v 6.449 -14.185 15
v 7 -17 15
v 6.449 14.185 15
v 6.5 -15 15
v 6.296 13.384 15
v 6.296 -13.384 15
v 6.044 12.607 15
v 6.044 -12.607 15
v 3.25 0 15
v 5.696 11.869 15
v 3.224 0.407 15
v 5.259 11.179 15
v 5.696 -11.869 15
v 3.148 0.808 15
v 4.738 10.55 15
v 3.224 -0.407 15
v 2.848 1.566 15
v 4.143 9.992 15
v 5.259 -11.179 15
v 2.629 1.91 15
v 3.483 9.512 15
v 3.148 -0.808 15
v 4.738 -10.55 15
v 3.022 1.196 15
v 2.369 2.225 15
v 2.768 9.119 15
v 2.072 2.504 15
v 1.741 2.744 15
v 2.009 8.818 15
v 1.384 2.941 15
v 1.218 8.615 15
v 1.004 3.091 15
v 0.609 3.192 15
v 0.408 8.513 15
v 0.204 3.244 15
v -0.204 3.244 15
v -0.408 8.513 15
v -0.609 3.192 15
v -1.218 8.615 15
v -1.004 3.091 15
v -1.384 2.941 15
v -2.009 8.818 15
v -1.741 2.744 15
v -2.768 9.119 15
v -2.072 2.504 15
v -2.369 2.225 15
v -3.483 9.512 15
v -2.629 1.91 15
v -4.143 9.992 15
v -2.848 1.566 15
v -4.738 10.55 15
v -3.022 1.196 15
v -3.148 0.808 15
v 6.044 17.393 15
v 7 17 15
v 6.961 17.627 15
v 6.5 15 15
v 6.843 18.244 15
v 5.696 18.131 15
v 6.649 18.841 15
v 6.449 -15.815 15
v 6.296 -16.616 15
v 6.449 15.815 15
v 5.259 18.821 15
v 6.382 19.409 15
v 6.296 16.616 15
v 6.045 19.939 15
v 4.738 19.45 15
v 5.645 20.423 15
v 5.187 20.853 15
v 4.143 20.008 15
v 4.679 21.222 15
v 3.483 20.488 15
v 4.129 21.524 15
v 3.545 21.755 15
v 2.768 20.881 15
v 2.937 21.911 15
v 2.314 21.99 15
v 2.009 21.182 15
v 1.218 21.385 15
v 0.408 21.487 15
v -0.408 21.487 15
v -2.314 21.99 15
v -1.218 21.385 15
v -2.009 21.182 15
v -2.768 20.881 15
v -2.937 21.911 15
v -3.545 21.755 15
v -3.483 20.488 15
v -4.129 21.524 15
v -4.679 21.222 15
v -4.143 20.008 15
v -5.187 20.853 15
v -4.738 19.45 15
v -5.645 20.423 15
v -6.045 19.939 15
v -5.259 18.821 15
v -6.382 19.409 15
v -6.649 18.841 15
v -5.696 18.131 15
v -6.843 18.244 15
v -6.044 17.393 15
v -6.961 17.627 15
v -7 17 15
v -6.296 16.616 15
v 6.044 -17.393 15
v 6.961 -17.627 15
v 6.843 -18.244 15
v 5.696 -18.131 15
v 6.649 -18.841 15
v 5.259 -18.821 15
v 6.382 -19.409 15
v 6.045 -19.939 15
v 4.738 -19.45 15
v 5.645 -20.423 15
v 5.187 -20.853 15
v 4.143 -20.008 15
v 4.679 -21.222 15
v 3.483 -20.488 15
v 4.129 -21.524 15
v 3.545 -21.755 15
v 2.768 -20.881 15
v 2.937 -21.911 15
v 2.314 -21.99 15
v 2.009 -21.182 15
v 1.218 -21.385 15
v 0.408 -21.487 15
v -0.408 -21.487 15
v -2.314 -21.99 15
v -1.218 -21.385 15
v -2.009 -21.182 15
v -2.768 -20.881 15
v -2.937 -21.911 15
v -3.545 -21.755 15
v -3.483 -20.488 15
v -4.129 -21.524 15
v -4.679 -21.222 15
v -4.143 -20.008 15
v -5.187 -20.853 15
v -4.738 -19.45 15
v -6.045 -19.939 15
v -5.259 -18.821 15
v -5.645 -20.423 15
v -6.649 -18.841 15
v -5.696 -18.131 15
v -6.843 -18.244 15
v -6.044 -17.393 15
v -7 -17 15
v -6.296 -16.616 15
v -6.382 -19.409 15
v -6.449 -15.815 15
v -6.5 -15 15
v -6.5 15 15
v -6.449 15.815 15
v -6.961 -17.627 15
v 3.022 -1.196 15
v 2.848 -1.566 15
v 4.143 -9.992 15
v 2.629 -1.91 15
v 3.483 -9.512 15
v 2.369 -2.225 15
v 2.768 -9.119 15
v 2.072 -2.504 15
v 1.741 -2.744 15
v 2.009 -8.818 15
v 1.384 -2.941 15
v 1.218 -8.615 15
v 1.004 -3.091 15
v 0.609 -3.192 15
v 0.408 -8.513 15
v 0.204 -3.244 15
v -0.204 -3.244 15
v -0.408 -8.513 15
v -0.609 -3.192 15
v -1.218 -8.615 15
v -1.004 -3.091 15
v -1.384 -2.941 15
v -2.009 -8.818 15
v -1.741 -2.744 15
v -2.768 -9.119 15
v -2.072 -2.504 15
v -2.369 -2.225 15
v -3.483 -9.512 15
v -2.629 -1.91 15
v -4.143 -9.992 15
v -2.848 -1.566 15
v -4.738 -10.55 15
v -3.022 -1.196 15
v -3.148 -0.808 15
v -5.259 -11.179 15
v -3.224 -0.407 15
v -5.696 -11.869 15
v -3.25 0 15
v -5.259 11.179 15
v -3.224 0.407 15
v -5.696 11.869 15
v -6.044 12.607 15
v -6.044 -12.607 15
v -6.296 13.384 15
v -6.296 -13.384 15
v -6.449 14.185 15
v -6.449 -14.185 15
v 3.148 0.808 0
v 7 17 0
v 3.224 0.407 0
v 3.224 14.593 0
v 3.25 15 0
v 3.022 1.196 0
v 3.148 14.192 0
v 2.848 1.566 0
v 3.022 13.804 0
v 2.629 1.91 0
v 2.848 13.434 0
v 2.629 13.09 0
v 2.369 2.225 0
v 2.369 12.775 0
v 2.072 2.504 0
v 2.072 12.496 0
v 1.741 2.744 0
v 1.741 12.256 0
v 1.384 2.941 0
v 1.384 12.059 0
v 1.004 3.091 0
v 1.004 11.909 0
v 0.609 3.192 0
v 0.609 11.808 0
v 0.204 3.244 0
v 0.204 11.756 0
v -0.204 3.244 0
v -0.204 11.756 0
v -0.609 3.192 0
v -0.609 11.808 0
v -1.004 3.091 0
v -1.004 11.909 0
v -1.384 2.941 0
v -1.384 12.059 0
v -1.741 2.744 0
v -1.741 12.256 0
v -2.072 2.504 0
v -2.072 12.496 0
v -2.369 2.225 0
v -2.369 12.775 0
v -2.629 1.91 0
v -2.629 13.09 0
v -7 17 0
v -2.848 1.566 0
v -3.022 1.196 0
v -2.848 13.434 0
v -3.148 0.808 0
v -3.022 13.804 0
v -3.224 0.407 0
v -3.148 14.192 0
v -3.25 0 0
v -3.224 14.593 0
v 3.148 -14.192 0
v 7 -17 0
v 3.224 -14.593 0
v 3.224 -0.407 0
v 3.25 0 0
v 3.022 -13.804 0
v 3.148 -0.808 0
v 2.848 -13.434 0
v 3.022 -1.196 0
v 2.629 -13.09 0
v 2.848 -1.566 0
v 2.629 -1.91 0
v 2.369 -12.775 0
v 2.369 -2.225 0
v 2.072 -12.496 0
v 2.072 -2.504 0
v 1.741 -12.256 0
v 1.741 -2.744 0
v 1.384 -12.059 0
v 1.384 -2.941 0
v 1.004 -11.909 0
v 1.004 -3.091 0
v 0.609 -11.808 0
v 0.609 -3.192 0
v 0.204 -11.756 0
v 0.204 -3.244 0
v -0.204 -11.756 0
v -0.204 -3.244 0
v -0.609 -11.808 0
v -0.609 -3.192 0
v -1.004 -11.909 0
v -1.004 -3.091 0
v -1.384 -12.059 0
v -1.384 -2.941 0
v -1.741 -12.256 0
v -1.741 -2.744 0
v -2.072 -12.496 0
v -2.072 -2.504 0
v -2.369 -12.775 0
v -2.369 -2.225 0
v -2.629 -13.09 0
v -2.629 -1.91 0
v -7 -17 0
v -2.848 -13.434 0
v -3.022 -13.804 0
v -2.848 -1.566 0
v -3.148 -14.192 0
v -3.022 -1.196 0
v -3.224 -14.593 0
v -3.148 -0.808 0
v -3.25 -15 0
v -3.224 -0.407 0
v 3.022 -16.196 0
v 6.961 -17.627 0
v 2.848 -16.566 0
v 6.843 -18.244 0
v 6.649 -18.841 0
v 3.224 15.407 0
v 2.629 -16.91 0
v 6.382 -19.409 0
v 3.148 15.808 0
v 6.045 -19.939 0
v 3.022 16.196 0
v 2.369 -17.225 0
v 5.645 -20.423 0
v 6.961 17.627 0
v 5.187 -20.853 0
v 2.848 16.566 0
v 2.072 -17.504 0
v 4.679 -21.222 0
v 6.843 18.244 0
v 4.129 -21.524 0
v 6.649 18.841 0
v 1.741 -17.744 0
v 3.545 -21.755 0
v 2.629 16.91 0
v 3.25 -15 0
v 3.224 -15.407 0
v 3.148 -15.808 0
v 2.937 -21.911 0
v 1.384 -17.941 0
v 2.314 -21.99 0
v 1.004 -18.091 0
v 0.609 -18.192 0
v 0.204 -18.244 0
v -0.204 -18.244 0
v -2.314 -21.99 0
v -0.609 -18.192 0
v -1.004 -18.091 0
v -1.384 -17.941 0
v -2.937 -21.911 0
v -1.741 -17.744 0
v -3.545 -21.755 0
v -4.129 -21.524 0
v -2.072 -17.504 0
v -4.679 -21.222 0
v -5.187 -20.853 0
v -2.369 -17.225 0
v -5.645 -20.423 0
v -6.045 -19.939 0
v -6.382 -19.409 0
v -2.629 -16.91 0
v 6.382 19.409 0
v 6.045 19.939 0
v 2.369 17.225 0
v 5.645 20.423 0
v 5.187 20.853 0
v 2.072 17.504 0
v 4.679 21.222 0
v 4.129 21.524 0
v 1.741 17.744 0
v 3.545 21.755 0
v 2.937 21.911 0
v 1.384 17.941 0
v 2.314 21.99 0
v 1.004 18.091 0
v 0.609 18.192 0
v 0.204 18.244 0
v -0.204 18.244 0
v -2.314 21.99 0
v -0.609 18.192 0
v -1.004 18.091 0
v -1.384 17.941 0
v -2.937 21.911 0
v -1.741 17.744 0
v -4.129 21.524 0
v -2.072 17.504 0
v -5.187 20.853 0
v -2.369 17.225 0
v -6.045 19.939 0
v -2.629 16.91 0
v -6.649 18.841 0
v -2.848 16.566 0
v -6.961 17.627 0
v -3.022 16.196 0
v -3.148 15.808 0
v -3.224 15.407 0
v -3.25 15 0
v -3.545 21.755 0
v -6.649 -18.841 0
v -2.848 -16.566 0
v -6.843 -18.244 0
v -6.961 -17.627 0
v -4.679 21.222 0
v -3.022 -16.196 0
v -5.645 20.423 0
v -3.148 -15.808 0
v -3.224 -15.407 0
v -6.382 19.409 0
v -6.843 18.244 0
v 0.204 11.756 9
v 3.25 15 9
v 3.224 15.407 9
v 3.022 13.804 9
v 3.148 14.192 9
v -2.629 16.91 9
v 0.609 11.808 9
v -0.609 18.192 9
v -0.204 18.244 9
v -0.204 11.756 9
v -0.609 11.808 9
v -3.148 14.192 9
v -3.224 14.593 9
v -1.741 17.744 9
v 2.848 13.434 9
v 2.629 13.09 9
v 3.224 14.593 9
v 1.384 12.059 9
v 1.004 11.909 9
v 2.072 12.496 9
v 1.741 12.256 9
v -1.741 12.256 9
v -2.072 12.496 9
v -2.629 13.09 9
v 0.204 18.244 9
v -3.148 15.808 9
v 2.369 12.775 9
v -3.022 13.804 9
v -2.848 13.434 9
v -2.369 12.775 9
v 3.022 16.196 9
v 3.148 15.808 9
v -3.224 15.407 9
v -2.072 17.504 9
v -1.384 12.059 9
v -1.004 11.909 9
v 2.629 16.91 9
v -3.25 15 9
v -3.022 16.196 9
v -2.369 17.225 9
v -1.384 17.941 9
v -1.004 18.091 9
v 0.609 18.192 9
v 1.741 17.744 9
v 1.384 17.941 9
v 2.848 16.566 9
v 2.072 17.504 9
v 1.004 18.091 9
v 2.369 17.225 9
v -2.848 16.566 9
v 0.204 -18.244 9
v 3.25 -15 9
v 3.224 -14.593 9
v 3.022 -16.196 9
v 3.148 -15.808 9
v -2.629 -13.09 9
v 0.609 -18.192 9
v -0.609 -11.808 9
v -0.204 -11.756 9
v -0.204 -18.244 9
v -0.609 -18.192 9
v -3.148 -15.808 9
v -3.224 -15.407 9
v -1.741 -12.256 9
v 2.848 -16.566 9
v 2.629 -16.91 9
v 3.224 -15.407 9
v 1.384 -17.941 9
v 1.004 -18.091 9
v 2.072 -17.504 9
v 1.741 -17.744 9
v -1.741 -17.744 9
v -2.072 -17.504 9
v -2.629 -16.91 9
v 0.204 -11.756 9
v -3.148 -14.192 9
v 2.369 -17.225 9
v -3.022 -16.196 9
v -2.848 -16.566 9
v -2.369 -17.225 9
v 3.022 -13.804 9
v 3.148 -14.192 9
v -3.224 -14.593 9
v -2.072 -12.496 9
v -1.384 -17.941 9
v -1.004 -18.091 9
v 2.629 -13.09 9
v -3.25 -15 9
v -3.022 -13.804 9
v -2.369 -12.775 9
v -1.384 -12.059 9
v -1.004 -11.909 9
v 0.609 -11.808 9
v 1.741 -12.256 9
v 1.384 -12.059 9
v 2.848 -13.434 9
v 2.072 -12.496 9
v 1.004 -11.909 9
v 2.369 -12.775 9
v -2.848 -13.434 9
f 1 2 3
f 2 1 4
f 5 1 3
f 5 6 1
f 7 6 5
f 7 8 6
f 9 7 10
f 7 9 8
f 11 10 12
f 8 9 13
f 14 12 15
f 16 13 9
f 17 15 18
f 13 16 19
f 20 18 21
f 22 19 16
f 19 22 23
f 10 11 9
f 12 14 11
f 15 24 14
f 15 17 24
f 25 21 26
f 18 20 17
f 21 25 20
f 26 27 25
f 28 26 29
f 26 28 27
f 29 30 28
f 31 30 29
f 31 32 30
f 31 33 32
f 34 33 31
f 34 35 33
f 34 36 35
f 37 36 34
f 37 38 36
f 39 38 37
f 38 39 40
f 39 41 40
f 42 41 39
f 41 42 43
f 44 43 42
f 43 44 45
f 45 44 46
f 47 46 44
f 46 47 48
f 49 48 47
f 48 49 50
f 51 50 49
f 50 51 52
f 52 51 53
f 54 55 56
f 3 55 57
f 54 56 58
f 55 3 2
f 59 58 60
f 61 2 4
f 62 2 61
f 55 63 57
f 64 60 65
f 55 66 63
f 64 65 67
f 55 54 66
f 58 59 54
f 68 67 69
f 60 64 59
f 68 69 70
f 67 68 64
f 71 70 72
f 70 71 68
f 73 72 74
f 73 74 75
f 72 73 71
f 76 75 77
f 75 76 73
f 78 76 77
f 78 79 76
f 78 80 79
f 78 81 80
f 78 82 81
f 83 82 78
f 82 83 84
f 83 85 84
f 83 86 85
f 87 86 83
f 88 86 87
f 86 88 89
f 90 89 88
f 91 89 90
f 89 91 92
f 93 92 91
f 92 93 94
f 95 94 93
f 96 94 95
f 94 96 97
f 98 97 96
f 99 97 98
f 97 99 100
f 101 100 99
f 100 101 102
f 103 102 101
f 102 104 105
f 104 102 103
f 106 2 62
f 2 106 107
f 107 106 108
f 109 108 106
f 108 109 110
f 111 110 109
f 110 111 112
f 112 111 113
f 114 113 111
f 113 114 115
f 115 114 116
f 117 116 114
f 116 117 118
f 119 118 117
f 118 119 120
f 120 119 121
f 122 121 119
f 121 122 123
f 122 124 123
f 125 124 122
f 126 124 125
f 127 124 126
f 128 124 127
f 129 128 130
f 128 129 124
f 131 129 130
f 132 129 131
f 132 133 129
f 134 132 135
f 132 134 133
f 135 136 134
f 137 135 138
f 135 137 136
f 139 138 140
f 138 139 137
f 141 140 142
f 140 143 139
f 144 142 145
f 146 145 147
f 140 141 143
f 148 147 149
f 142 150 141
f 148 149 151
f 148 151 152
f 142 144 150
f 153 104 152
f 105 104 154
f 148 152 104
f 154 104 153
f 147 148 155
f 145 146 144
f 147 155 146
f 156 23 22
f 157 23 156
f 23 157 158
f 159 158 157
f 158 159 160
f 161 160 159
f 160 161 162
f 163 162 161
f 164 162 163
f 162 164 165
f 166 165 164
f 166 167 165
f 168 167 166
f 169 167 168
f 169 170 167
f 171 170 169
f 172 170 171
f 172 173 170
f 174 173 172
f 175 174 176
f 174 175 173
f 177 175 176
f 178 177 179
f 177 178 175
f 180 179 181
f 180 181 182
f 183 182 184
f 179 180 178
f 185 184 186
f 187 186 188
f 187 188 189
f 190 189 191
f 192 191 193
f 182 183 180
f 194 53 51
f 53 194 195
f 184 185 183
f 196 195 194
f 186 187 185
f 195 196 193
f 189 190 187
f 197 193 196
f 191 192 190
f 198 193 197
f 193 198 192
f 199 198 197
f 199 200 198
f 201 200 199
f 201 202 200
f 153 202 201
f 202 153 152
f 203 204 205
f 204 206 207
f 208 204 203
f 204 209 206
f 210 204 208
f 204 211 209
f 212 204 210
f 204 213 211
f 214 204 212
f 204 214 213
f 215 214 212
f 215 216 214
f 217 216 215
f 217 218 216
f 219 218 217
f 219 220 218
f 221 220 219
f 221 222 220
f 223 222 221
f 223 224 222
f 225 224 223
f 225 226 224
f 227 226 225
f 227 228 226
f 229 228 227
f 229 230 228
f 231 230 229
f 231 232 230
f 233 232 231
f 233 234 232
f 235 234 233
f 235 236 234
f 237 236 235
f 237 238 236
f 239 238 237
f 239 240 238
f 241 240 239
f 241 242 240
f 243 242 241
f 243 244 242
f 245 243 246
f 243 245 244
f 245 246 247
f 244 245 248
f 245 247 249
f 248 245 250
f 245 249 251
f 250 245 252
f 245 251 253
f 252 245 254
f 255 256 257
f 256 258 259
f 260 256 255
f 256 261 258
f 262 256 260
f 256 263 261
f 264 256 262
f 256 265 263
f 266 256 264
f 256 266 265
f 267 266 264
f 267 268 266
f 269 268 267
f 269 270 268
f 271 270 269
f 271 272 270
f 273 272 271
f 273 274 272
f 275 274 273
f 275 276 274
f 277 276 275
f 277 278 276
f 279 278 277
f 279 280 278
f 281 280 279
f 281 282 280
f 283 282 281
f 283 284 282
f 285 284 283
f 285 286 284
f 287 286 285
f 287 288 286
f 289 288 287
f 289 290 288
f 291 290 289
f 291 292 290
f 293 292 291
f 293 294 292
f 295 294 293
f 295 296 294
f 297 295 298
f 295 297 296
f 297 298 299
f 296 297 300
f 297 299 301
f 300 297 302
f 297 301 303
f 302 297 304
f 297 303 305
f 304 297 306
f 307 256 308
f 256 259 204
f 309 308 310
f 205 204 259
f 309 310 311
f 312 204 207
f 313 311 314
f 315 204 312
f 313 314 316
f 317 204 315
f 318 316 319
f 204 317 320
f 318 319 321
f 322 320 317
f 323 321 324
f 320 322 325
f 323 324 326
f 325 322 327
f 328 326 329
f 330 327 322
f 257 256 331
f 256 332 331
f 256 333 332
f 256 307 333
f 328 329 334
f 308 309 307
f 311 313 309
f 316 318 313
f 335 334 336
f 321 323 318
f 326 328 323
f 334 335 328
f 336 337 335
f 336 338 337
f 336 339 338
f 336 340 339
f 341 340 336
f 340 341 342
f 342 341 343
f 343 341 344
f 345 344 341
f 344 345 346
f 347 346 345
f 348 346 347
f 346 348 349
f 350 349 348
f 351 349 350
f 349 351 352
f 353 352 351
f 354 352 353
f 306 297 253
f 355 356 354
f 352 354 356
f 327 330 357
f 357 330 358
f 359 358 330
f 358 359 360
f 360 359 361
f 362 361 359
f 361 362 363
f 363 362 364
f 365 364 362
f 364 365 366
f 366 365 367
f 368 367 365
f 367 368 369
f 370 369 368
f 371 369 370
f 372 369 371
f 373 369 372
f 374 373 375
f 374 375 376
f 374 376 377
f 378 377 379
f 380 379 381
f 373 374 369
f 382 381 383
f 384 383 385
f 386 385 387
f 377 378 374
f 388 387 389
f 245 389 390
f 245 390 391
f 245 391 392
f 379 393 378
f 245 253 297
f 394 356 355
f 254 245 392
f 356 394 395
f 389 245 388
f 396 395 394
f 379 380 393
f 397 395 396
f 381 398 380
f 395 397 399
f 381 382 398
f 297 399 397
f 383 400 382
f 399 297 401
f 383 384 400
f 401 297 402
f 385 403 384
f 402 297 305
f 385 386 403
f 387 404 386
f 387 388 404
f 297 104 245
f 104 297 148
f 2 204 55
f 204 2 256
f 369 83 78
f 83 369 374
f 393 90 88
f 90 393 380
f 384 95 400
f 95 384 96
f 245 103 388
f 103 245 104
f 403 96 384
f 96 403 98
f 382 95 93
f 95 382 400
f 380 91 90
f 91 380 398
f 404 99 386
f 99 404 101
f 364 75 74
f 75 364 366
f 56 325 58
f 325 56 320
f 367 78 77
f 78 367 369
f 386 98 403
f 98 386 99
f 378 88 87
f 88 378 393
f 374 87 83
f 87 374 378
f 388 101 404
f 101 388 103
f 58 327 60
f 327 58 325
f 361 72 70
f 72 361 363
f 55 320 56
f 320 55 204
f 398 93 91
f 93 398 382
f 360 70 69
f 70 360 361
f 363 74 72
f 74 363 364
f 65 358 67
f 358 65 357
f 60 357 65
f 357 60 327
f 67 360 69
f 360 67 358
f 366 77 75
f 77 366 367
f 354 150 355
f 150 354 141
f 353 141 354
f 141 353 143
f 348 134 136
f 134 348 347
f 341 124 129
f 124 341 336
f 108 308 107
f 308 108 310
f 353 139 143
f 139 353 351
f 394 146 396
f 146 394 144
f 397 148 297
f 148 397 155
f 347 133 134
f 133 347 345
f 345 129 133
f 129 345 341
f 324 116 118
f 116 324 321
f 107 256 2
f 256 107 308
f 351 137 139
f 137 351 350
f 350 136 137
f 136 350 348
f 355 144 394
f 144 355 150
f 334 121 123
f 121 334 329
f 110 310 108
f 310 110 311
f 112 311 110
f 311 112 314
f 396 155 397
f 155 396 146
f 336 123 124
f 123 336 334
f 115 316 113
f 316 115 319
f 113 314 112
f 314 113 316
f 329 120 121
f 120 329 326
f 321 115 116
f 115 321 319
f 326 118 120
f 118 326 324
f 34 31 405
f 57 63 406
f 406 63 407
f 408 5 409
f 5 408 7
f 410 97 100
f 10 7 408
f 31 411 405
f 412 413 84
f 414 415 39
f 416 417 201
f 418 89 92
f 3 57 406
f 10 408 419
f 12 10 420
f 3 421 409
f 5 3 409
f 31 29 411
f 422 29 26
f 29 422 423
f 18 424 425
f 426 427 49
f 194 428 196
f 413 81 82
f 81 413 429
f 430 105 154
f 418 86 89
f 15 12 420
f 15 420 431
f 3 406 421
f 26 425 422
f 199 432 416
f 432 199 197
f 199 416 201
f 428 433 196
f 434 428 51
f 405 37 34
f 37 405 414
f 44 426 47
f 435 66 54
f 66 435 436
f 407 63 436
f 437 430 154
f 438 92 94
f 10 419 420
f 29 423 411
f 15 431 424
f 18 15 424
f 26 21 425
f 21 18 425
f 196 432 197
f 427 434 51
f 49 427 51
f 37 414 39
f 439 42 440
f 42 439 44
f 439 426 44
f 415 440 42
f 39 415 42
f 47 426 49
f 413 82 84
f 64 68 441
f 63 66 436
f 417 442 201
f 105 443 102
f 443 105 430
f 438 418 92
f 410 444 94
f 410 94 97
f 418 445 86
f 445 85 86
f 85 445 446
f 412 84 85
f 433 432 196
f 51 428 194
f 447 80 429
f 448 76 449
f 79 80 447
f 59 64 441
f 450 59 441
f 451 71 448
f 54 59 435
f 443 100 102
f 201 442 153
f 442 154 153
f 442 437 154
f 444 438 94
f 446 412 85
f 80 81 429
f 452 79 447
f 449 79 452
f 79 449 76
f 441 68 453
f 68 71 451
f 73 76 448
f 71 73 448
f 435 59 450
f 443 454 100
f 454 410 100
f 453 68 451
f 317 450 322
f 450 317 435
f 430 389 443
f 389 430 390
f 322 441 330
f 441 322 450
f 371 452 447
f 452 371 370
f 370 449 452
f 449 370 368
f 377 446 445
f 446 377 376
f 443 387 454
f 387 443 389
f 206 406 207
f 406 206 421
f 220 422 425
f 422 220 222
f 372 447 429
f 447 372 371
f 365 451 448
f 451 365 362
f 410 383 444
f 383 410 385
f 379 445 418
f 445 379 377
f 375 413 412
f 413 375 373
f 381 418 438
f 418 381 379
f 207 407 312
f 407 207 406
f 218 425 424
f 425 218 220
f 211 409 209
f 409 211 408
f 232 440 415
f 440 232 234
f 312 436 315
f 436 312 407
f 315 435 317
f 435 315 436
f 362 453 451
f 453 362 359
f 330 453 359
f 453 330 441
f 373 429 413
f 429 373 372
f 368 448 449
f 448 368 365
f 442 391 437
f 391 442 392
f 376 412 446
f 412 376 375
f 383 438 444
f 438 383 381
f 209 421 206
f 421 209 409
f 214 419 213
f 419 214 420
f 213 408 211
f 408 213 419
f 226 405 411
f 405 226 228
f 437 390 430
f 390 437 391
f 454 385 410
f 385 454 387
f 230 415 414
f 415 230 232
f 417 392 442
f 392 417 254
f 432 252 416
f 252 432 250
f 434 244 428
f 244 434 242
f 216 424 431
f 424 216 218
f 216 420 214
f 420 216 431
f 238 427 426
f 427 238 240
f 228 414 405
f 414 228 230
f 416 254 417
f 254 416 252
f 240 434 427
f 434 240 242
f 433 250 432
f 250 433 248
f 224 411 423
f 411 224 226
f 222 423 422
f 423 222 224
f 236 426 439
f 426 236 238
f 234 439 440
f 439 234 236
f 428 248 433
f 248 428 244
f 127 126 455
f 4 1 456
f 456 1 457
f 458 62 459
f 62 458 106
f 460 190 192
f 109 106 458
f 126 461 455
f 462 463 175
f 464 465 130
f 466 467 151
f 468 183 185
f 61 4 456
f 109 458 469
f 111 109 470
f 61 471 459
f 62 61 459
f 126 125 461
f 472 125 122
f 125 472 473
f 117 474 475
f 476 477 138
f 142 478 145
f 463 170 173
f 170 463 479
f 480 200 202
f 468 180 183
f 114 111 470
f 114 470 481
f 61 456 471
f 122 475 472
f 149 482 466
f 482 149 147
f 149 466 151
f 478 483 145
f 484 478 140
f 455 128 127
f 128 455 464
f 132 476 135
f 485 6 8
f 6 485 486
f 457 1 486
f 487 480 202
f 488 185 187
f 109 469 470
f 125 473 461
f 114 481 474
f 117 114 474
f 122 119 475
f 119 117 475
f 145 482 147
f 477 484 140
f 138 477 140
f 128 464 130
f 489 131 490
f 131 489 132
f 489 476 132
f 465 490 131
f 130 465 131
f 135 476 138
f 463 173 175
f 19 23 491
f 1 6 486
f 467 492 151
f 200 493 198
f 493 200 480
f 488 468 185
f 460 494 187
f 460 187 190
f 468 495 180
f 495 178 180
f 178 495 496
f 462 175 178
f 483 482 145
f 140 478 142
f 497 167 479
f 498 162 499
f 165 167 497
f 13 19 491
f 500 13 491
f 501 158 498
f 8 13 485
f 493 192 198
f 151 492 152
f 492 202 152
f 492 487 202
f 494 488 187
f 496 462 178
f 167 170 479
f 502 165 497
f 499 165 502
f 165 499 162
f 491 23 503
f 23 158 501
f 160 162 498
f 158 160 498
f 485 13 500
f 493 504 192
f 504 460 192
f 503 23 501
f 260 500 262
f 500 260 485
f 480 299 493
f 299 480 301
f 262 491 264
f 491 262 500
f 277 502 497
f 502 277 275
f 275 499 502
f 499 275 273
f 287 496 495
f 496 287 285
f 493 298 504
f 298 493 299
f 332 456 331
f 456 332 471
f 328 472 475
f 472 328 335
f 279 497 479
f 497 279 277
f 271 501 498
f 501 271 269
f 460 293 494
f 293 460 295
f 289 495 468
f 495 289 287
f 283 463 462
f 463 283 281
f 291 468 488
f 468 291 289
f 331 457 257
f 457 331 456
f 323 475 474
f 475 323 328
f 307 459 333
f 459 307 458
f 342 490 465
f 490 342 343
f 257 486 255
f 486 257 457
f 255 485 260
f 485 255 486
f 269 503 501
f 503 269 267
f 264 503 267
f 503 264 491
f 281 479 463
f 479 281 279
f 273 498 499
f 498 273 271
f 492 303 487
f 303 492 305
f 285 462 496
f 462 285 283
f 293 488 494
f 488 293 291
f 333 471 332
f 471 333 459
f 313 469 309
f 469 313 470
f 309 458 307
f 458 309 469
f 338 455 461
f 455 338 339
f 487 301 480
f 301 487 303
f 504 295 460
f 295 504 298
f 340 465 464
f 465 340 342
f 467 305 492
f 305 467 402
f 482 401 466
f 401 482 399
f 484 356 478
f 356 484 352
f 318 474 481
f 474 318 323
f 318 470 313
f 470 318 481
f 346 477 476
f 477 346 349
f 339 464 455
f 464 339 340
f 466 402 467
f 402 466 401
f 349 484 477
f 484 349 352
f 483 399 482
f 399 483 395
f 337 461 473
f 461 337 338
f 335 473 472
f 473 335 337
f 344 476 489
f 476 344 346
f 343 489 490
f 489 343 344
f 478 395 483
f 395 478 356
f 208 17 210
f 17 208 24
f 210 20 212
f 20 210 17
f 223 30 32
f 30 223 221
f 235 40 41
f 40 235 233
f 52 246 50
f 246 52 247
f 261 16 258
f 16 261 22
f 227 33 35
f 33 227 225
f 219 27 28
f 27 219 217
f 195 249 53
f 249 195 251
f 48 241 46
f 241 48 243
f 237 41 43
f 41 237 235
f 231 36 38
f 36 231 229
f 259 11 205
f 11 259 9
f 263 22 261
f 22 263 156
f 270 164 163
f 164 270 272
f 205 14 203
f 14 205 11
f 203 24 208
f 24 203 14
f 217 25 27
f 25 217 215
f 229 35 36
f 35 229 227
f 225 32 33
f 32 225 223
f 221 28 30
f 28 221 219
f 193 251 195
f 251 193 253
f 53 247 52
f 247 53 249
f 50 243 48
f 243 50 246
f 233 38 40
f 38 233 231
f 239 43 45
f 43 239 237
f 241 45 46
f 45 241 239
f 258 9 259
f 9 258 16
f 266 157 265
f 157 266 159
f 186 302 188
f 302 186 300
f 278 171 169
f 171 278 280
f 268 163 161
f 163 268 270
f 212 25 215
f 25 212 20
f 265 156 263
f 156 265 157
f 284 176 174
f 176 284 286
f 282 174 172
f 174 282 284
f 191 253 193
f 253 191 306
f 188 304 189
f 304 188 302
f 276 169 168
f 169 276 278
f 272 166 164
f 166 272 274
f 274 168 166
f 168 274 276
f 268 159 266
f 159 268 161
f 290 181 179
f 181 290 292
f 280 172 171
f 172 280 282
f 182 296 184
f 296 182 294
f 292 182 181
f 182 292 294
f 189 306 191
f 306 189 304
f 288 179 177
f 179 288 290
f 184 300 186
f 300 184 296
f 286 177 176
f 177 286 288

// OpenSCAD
$fn = 50;


difference() {
	union() {
		cylinder(h = 15, r = 7.0000000000);
		translate(v = [0.0000000000, 7.5000000000, 0]) {
			hull() {
				translate(v = [-2.0000000000, 9.5000000000, 0]) {
					cylinder(h = 15, r = 5);
				}
				translate(v = [2.0000000000, 9.5000000000, 0]) {
					cylinder(h = 15, r = 5);
				}
				translate(v = [-2.0000000000, -9.5000000000, 0]) {
					cylinder(h = 15, r = 5);
				}
				translate(v = [2.0000000000, -9.5000000000, 0]) {
					cylinder(h = 15, r = 5);
				}
			}
		}
		translate(v = [0.0000000000, 7.5000000000, 0]) {
			hull() {
				translate(v = [-2.0000000000, 9.5000000000, 0]) {
					cylinder(h = 15, r = 5);
				}
				translate(v = [2.0000000000, 9.5000000000, 0]) {
					cylinder(h = 15, r = 5);
				}
				translate(v = [-2.0000000000, -9.5000000000, 0]) {
					cylinder(h = 15, r = 5);
				}
				translate(v = [2.0000000000, -9.5000000000, 0]) {
					cylinder(h = 15, r = 5);
				}
			}
		}
		translate(v = [0.0000000000, -7.5000000000, 0]) {
			hull() {
				translate(v = [-2.0000000000, 9.5000000000, 0]) {
					cylinder(h = 15, r = 5);
				}
				translate(v = [2.0000000000, 9.5000000000, 0]) {
					cylinder(h = 15, r = 5);
				}
				translate(v = [-2.0000000000, -9.5000000000, 0]) {
					cylinder(h = 15, r = 5);
				}
				translate(v = [2.0000000000, -9.5000000000, 0]) {
					cylinder(h = 15, r = 5);
				}
			}
		}
		translate(v = [0.0000000000, -7.5000000000, 0]) {
			hull() {
				translate(v = [-2.0000000000, 9.5000000000, 0]) {
					cylinder(h = 15, r = 5);
				}
				translate(v = [2.0000000000, 9.5000000000, 0]) {
					cylinder(h = 15, r = 5);
				}
				translate(v = [-2.0000000000, -9.5000000000, 0]) {
					cylinder(h = 15, r = 5);
				}
				translate(v = [2.0000000000, -9.5000000000, 0]) {
					cylinder(h = 15, r = 5);
				}
			}
		}
	}
	union() {
		translate(v = [0.0000000000, 15.0000000000, 15]) {
			rotate(a = [0, 0, 0]) {
				difference() {
					union() {
						#translate(v = [0, 0, -15.0000000000]) {
							cylinder(h = 15, r = 2.2500000000);
						}
						#translate(v = [0, 0, -6]) {
							cylinder(h = 6, r1 = 3.2500000000, r2 = 6.5000000000);
						}
						#translate(v = [0, 0, -15.0000000000]) {
							cylinder(h = 15, r = 3.2500000000);
						}
						#translate(v = [0, 0, -15.0000000000]) {
							cylinder(h = 15, r = 2.2500000000);
						}
					}
					union();
				}
			}
		}
		translate(v = [0.0000000000, 15.0000000000, 15]) {
			rotate(a = [0, 0, 0]) {
				difference() {
					union() {
						#translate(v = [0, 0, -15.0000000000]) {
							cylinder(h = 15, r = 2.2500000000);
						}
						#translate(v = [0, 0, -6]) {
							cylinder(h = 6, r1 = 3.2500000000, r2 = 6.5000000000);
						}
						#translate(v = [0, 0, -15.0000000000]) {
							cylinder(h = 15, r = 3.2500000000);
						}
						#translate(v = [0, 0, -15.0000000000]) {
							cylinder(h = 15, r = 2.2500000000);
						}
					}
					union();
				}
			}
		}
		translate(v = [0.0000000000, -15.0000000000, 15]) {
			rotate(a = [0, 0, 0]) {
				difference() {
					union() {
						#translate(v = [0, 0, -15.0000000000]) {
							cylinder(h = 15, r = 2.2500000000);
						}
						#translate(v = [0, 0, -6]) {
							cylinder(h = 6, r1 = 3.2500000000, r2 = 6.5000000000);
						}
						#translate(v = [0, 0, -15.0000000000]) {
							cylinder(h = 15, r = 3.2500000000);
						}
						#translate(v = [0, 0, -15.0000000000]) {
							cylinder(h = 15, r = 2.2500000000);
						}
					}
					union();
				}
			}
		}
		translate(v = [0.0000000000, -15.0000000000, 15]) {
			rotate(a = [0, 0, 0]) {
				difference() {
					union() {
						#translate(v = [0, 0, -15.0000000000]) {
							cylinder(h = 15, r = 2.2500000000);
						}
						#translate(v = [0, 0, -6]) {
							cylinder(h = 6, r1 = 3.2500000000, r2 = 6.5000000000);
						}
						#translate(v = [0, 0, -15.0000000000]) {
							cylinder(h = 15, r = 3.2500000000);
						}
						#translate(v = [0, 0, -15.0000000000]) {
							cylinder(h = 15, r = 2.2500000000);
						}
					}
					union();
				}
			}
		}
		translate(v = [0, 0, -100]) {
			cylinder(h = 200, r = 3.2500000000);
		}
		translate(v = [0, 0, -100]) {
			cylinder(h = 200, r = 1.8000000000);
		}
	}
}
